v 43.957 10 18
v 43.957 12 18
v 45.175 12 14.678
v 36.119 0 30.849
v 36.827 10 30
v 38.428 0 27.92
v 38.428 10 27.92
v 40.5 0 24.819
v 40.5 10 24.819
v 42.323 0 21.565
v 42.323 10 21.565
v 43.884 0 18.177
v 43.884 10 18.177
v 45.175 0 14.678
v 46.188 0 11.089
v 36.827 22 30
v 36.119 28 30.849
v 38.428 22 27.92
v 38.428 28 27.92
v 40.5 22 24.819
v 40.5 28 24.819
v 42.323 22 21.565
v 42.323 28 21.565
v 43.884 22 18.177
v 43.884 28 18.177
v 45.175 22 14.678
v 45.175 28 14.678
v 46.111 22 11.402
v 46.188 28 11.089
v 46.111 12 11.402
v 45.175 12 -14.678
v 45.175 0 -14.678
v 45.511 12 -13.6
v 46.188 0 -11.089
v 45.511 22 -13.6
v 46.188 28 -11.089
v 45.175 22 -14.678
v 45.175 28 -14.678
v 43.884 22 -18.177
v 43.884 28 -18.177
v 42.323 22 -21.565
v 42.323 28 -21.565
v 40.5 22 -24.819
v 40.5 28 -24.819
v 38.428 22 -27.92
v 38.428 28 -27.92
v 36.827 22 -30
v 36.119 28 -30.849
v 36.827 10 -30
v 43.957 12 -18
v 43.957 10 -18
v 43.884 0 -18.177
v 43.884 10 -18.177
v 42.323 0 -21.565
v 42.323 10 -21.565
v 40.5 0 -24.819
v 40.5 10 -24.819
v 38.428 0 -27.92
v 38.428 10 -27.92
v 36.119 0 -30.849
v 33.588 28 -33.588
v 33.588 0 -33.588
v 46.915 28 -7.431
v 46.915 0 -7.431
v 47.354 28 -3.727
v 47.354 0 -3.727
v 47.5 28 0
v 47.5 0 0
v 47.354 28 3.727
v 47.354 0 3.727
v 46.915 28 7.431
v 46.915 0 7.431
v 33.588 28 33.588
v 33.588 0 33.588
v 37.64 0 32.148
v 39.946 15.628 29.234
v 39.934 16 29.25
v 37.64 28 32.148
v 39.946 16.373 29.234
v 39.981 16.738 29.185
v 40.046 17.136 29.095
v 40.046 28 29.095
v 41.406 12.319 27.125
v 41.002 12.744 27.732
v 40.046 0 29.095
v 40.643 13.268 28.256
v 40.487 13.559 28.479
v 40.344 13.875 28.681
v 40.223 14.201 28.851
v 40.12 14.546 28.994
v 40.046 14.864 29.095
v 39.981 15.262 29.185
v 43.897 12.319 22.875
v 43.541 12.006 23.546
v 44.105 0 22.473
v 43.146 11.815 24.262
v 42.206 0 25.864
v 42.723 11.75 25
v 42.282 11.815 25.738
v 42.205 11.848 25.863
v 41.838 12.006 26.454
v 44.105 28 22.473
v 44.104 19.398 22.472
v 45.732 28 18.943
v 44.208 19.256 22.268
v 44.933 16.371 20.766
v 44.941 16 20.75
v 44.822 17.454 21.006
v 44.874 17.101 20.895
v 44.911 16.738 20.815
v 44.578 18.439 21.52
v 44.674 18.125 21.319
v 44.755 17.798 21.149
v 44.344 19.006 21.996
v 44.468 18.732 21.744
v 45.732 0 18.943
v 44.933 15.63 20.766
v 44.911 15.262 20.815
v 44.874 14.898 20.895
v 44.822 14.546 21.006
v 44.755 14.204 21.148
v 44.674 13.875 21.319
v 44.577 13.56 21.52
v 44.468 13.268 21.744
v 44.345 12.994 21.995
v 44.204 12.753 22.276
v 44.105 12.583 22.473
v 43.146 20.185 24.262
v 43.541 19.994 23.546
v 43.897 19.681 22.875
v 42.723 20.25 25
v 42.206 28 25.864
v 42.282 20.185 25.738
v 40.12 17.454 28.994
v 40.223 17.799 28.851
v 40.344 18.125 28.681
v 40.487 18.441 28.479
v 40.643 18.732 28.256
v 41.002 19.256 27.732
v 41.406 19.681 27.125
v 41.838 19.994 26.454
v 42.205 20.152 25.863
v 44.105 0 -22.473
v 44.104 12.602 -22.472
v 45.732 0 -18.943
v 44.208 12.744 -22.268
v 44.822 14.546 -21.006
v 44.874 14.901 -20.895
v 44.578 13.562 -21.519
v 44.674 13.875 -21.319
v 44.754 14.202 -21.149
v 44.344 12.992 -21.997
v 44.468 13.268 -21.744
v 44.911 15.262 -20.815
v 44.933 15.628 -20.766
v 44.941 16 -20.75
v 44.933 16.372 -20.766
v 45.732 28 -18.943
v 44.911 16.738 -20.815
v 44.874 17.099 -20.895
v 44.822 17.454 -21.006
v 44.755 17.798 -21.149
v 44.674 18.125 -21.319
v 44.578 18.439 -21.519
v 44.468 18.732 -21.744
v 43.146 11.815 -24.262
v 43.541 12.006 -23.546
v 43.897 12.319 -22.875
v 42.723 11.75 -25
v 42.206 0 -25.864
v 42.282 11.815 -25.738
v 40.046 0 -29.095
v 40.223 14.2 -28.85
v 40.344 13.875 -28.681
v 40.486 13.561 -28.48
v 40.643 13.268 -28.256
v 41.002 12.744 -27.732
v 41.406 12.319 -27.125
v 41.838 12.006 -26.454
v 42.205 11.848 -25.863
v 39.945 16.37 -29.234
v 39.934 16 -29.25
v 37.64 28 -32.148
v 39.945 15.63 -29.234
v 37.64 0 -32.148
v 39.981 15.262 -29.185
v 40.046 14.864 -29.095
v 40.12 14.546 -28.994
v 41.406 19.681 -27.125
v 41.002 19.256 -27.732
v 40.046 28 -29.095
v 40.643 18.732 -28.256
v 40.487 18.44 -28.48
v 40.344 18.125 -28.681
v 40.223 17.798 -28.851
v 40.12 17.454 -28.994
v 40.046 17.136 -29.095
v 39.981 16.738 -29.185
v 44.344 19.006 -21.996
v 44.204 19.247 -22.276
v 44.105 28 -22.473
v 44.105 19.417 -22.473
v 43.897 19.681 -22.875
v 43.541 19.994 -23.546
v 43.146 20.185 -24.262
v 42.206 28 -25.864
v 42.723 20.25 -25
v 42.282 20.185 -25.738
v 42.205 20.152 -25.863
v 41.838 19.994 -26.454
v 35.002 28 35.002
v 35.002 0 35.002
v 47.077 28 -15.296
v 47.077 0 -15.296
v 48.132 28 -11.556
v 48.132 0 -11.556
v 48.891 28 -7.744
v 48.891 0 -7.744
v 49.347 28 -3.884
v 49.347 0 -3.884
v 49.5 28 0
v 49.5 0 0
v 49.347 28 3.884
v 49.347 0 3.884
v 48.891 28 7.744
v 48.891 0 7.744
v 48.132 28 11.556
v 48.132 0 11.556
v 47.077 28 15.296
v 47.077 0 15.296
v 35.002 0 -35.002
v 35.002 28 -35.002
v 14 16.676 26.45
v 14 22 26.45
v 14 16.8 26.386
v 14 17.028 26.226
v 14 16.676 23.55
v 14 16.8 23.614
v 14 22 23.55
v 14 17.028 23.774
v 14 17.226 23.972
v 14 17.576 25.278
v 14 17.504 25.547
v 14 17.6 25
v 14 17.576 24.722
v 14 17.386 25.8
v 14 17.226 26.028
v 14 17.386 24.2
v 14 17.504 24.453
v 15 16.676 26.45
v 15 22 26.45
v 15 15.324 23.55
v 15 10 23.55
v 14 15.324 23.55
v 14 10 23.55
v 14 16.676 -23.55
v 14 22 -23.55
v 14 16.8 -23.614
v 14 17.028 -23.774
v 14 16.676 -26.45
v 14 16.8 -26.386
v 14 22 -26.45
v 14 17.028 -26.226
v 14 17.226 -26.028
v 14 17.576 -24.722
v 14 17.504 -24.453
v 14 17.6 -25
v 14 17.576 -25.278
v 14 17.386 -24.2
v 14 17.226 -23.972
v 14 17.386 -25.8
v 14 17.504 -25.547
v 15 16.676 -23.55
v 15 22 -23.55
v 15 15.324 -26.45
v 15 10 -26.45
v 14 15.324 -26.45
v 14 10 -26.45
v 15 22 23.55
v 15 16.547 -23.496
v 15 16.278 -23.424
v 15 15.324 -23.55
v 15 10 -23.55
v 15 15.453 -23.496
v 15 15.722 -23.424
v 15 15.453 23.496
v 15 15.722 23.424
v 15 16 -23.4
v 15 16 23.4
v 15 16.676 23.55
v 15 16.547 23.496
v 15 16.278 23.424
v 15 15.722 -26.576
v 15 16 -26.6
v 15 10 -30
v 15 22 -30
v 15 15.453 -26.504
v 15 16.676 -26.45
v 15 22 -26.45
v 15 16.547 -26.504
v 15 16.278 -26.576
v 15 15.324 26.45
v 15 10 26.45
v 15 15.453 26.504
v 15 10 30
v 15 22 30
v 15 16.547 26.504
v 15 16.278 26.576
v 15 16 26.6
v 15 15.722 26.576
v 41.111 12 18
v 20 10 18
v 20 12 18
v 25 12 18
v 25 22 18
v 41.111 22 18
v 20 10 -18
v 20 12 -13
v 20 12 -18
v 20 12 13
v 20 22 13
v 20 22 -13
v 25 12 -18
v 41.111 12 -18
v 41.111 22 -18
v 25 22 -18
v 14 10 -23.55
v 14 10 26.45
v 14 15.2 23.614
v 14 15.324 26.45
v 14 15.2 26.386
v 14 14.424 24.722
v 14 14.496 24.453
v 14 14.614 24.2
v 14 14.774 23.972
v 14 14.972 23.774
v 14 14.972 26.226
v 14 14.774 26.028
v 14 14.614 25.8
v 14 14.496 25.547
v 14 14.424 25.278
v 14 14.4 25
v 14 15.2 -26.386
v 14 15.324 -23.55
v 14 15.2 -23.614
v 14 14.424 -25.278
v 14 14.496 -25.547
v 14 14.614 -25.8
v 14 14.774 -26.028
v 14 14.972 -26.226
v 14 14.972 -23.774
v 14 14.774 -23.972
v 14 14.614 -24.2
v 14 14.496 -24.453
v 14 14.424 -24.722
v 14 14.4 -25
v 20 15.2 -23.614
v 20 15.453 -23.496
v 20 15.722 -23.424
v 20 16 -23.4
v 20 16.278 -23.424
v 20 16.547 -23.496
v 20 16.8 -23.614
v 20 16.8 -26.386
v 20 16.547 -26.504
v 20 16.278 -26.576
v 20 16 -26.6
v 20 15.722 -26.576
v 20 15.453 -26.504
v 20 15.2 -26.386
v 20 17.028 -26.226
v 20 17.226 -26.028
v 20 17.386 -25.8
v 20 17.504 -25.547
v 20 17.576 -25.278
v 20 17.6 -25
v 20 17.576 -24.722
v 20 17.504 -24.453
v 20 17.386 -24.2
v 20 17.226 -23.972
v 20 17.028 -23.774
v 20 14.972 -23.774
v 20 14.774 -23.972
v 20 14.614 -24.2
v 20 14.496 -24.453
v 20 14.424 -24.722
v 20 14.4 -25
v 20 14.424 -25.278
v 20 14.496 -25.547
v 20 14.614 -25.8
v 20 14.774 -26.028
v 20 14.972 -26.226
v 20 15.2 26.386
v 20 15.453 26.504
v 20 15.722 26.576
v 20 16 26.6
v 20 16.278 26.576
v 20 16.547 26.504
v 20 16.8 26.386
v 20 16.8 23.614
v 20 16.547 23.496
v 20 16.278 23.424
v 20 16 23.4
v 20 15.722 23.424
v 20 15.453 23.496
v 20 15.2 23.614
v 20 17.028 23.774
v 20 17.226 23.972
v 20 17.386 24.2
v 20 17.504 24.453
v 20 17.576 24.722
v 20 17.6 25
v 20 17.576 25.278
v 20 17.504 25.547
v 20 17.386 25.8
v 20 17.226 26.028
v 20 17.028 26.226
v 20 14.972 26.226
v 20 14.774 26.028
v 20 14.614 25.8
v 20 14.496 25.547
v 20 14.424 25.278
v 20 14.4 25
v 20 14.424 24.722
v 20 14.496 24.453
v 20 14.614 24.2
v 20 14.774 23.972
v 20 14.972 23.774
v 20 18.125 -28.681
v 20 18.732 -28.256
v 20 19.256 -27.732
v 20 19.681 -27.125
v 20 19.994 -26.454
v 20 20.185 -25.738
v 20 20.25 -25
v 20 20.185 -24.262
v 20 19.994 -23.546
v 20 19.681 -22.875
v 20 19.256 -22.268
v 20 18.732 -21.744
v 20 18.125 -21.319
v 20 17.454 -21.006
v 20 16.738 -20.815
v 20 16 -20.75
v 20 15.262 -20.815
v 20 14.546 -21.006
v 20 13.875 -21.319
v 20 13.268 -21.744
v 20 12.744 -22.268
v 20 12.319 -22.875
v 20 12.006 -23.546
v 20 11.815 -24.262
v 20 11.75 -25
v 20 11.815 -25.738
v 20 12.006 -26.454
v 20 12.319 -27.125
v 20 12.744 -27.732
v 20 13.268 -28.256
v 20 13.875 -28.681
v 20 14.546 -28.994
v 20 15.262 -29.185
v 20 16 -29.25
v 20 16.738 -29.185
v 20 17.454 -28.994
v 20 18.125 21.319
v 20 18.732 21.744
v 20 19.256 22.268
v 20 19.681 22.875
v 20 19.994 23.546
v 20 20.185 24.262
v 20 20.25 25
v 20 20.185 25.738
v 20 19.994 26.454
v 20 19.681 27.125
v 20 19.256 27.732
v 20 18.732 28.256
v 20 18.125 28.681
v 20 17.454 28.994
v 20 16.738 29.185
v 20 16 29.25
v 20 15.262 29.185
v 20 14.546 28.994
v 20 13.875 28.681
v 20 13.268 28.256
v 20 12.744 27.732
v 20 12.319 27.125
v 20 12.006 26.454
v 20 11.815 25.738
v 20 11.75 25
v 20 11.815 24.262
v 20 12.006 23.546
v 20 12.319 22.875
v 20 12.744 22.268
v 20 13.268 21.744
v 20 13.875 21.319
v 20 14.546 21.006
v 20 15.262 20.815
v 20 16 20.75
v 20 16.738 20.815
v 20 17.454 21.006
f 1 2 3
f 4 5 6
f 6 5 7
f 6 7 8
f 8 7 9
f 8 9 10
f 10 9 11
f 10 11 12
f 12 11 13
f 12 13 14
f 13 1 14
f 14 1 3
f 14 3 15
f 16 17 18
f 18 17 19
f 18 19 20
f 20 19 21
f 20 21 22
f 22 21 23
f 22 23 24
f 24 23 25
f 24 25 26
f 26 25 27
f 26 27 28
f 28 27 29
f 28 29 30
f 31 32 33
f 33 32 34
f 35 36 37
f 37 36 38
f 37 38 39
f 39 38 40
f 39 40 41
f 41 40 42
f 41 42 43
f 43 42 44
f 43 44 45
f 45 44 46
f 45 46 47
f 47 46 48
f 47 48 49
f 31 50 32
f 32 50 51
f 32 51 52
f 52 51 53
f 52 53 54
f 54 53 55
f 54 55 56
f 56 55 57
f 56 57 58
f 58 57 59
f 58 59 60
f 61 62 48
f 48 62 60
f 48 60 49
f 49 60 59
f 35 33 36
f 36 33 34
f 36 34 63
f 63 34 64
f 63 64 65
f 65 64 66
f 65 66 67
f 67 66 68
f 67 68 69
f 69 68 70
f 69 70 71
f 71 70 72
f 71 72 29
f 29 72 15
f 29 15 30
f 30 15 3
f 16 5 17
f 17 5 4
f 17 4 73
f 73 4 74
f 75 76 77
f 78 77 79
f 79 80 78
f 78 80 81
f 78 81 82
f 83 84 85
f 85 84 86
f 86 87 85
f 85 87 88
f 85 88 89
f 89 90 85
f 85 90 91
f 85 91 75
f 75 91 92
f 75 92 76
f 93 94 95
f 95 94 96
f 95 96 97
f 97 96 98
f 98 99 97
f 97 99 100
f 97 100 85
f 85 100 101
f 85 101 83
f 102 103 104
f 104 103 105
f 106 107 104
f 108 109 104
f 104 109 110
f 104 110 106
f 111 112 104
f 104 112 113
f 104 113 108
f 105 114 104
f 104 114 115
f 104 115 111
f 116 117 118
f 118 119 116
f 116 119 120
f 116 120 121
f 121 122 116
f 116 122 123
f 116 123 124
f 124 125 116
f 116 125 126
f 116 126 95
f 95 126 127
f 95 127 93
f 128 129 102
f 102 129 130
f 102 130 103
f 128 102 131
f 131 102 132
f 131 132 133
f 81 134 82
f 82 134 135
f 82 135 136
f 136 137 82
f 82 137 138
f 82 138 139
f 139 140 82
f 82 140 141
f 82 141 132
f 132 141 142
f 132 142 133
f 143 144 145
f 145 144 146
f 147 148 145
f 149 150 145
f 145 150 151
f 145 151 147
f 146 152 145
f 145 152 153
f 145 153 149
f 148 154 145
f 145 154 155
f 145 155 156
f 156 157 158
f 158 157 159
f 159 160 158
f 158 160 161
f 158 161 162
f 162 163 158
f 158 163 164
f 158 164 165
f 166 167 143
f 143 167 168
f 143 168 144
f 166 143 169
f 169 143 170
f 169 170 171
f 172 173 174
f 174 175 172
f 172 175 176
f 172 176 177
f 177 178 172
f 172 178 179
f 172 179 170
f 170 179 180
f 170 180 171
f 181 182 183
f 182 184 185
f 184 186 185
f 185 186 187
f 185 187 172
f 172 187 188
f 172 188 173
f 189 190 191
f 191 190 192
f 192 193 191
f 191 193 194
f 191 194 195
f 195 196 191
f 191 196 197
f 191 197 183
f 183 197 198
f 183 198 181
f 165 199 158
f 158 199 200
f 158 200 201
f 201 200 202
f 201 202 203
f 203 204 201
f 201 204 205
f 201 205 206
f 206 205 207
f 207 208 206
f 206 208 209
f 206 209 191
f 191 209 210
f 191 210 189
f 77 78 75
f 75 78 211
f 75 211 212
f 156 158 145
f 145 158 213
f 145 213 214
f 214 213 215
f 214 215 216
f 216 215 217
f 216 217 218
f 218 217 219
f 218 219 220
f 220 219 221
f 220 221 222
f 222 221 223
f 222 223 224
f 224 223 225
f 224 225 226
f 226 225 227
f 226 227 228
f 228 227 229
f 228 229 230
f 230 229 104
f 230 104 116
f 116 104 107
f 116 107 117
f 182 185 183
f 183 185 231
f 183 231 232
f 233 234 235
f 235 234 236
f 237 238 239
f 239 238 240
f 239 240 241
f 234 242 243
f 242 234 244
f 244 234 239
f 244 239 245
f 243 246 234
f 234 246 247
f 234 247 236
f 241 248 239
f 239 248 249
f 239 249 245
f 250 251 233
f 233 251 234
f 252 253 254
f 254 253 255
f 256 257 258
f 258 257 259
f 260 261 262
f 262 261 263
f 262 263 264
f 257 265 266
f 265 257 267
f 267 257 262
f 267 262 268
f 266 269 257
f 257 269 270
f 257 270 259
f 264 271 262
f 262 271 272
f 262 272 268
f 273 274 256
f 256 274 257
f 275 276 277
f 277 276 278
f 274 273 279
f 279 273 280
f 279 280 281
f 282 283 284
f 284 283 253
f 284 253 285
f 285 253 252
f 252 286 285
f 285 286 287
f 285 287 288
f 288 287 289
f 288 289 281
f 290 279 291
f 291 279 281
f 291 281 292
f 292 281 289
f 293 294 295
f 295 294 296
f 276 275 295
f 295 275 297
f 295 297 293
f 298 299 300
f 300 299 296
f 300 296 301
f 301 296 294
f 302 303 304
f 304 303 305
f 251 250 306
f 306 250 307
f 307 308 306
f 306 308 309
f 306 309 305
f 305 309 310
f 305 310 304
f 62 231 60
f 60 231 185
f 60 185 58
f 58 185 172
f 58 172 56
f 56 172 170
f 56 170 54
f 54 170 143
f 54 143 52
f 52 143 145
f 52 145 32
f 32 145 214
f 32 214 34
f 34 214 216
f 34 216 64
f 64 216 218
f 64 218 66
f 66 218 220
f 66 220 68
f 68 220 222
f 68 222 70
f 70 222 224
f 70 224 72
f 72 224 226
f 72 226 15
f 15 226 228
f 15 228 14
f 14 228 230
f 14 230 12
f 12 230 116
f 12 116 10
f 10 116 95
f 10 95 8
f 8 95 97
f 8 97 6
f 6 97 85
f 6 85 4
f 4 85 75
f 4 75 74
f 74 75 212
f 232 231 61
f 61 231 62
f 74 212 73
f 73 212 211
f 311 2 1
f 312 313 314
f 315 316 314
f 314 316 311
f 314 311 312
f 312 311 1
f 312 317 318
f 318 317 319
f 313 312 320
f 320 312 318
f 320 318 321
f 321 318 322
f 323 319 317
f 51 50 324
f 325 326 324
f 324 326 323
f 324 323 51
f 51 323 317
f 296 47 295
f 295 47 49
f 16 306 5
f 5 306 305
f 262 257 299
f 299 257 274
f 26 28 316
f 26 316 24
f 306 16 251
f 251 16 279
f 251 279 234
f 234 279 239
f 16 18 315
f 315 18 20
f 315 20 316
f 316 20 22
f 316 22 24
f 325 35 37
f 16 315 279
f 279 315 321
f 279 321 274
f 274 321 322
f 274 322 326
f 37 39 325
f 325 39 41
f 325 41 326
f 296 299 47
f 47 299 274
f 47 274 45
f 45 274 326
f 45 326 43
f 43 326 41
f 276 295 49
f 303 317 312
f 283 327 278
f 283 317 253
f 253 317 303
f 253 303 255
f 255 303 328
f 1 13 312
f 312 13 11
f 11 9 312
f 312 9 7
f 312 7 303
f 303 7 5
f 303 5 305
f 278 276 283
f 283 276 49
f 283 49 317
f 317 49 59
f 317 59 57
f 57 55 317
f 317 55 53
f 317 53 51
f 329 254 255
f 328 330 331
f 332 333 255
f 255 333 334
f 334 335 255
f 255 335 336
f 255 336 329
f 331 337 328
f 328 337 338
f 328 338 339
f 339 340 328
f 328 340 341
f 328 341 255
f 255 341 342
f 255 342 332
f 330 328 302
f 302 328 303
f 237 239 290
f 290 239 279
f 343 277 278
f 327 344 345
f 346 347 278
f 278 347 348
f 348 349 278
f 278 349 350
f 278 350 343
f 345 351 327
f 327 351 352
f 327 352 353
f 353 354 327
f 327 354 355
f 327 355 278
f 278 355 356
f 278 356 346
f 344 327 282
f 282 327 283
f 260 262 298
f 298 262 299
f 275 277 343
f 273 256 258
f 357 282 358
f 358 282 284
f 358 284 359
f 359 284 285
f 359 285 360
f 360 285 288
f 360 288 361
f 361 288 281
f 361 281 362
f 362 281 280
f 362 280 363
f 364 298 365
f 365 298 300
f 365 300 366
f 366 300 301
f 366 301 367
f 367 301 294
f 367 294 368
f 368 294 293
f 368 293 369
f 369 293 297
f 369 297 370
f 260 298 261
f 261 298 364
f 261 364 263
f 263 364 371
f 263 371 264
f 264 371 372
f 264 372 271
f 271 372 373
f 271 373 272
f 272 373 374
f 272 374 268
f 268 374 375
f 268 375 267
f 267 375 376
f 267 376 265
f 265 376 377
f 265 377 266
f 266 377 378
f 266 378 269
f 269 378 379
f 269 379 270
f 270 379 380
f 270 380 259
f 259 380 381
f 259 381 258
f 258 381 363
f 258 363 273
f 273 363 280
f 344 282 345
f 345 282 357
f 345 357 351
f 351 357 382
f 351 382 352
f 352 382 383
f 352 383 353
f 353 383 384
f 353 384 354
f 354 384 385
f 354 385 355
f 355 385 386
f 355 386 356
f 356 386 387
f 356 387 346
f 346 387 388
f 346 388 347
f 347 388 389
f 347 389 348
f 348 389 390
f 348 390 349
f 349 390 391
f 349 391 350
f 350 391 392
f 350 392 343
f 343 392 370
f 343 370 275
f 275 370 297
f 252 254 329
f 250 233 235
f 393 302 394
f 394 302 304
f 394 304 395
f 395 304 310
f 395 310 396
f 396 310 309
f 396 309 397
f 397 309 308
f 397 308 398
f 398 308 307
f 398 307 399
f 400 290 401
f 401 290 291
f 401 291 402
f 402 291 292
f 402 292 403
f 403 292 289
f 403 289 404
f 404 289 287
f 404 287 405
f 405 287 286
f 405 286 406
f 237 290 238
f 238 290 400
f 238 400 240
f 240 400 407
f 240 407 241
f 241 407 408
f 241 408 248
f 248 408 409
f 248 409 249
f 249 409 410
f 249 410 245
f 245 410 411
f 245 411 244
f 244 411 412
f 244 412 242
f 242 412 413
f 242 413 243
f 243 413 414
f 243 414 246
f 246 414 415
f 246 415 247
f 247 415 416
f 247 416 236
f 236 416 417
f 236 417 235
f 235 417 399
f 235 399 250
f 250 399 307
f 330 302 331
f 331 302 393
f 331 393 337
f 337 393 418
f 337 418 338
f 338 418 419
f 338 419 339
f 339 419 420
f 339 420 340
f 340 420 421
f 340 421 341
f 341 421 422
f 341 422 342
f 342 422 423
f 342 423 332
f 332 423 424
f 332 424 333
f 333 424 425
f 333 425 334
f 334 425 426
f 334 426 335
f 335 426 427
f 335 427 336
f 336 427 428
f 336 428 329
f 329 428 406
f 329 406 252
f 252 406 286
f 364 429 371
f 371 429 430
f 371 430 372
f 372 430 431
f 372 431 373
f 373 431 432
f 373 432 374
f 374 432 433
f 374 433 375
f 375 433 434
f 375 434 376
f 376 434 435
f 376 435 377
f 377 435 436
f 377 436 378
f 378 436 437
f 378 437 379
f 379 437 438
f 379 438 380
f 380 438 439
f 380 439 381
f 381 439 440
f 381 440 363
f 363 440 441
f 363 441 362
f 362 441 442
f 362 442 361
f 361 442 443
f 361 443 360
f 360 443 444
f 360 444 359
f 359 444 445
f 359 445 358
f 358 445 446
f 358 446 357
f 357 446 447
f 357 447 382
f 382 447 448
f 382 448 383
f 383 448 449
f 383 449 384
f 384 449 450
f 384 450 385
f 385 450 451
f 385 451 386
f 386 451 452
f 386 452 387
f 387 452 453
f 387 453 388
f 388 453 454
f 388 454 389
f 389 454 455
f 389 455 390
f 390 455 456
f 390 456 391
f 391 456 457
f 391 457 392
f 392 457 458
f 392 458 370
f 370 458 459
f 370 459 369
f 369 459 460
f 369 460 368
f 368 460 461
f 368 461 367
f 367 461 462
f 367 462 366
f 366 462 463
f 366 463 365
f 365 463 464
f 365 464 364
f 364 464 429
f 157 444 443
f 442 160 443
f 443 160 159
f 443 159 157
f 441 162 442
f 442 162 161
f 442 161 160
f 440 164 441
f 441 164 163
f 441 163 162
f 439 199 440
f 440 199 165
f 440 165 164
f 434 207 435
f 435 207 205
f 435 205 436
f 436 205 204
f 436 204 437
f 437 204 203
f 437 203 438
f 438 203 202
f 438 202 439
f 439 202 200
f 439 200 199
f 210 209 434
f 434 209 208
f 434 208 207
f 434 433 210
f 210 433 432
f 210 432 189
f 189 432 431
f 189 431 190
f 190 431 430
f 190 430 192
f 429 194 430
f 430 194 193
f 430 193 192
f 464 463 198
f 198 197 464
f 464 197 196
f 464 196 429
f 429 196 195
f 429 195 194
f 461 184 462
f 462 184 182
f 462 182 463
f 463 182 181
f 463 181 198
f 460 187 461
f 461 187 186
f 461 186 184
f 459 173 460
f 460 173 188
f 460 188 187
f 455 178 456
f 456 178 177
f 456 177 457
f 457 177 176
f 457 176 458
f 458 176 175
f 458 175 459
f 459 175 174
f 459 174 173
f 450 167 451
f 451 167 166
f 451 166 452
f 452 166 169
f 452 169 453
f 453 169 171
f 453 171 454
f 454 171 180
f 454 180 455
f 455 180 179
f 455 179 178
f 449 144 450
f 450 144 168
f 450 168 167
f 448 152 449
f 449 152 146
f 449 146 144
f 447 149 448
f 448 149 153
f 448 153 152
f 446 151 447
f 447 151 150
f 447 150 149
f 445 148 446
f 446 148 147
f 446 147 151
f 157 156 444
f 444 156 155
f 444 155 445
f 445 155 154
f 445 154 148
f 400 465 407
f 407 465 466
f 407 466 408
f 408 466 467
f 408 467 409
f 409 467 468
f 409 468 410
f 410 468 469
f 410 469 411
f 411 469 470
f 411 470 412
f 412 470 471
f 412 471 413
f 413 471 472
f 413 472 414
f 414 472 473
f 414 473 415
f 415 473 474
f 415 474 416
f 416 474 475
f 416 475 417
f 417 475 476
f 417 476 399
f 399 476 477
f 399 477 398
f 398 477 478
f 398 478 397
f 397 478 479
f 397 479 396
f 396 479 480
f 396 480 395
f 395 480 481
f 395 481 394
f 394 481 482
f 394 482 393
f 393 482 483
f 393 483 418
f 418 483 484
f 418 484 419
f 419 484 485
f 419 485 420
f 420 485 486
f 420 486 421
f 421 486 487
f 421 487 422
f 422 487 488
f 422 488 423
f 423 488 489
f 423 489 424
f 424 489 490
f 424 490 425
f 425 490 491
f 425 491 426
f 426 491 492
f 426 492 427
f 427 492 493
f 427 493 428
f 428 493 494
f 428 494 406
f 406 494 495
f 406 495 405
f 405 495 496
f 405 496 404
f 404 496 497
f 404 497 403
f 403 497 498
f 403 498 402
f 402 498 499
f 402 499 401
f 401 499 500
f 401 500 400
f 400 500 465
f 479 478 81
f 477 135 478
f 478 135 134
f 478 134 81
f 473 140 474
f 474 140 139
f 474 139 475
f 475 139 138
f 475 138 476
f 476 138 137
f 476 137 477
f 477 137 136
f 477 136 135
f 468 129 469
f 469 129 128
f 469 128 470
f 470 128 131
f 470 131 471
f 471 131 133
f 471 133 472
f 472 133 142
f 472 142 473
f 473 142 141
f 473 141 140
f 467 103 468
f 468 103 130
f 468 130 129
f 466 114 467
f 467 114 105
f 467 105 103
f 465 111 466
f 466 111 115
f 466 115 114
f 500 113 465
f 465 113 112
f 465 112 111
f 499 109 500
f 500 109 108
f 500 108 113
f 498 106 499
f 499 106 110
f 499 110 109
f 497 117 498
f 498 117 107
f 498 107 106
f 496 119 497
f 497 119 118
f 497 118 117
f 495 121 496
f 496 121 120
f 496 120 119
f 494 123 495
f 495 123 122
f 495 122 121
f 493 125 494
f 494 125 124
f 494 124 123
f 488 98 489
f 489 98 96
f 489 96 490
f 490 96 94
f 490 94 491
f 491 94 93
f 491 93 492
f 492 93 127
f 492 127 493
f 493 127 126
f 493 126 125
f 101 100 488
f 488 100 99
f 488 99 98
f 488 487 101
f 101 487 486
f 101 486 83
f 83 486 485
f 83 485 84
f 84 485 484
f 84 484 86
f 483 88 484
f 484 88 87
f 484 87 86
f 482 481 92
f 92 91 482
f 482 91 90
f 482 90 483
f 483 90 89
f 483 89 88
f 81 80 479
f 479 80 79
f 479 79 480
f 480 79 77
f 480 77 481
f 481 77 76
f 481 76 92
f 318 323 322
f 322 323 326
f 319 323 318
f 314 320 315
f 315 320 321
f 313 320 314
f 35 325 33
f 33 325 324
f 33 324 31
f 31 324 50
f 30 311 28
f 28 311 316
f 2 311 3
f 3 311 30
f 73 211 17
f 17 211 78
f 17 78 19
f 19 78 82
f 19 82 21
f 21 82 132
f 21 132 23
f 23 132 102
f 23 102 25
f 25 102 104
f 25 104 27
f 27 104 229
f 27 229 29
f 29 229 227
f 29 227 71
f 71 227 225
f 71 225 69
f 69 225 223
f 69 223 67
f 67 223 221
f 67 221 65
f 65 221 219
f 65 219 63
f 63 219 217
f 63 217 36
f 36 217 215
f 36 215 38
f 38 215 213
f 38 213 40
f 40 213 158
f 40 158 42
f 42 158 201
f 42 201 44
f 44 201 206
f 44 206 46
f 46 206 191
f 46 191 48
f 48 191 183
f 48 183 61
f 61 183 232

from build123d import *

# Parameters (mm, degrees)
SKETCH1_W           = 2
SKETCH1_H           = 40
MAIN_ANGLE          = 90
SUPPORT_DEPTH       = 12
SKETCH6_W           = 1
SKETCH6_H           = 2.9
FIX_2_DEPTH         = 12
SKETCH9_R           = 1.6
SKETCH9_W           = 60
SKETCH9_H           = 8
HOLES_DEPTH         = 7
SKETCH10_R          = 4.25
BIGHOLES_DEPTH      = 30.5
REINFORCEMENT_DEPTH = 10
SKETCH12_W          = 70.003571338
SKETCH12_H          = 12
SENSORWINDOW_DEPTH  = 35.5000001


with BuildPart() as part:
    # Sketch1 → Main (revolve, symmetric)
    with BuildSketch(Plane.XY) as main_sk:
        with Locations((48.5, 20)):
            Rectangle(SKETCH1_W, SKETCH1_H)
    revolve(axis=Axis((0, -0.284703924, 0), (0, 1, 0)), revolution_arc=MAIN_ANGLE / 2)
    revolve(main_sk.sketch, axis=Axis((0, -0.284703924, 0), (0, -1, 0)), revolution_arc=MAIN_ANGLE / 2)

    # Sketch2 → Support (add)
    with BuildSketch(Plane(origin=(0, 10, 0), x_dir=(-1, 0, 0), z_dir=(0, -1, 0))):
        with BuildLine():
            Line((-43.957365708, -18), (-20, -18))
            Line((-20, -18), (-20, 18))
            Line((-20, 18), (-43.957365708, 18))
            ThreePointArc((-43.957365708, 18), (-40.835530357, 24.263335724), (-36.827299657, 30))
            Line((-36.827299657, 30), (-15, 30))
            Line((-15, 30), (-15, -30))
            Line((-15, -30), (-36.827299657, -30))
            ThreePointArc((-36.827299657, -30), (-40.835530357, -24.263335724), (-43.957365708, -18))
        make_face()
    extrude(amount=-SUPPORT_DEPTH)

    # Sketch6 → Fix 2 (add)
    with BuildSketch(Plane(origin=(0, 10, 0), x_dir=(1, 0, 0), z_dir=(0, 1, 0))):
        with Locations((14.5, -25)):
            Rectangle(SKETCH6_W, SKETCH6_H)
        with Locations((14.5, 25)):
            Rectangle(SKETCH6_W, SKETCH6_H)
    extrude(amount=FIX_2_DEPTH)

    # Sketch9 → Holes (cut, through all)
    with BuildSketch(Plane(origin=(20, 0, 0), x_dir=(0, 0, -1), z_dir=(1, 0, 0))):
        with Locations((25, 16)):
            Circle(SKETCH9_R)
        with Locations((-25, 16)):
            Circle(SKETCH9_R)
        with Locations((0, 38)):
            Rectangle(SKETCH9_W, SKETCH9_H)
    extrude(amount=-HOLES_DEPTH, mode=Mode.SUBTRACT)

    # Sketch10 → BigHoles (cut, through all)
    with BuildSketch(Plane(origin=(20, 0, 0), x_dir=(0, 0, -1), z_dir=(1, 0, 0))):
        with Locations((25, 16)):
            Circle(SKETCH10_R)
        with Locations((-25, 16)):
            Circle(SKETCH10_R)
    extrude(amount=BIGHOLES_DEPTH, mode=Mode.SUBTRACT)

    # Sketch11 → Reinforcement (add)
    with BuildSketch(Plane(origin=(0, 22, 0), x_dir=(1, 0, 0), z_dir=(0, 1, 0))):
        Polygon((20, 18), (25, 18), (20, 13), align=None)
        Polygon((20, -18), (20, -13), (25, -18), align=None)
        Polygon((41.111278447, 18), (46.111278447, 18), (46.111278447, 13), align=None)
        Polygon((41.111278447, -18), (46.111278447, -18), (46.111278447, -11.401754251), align=None)
    extrude(amount=-REINFORCEMENT_DEPTH)

    # Sketch12 → SensorWindow (cut, through all)
    with BuildSketch(Plane.ZY.offset(-15)):
        with Locations((0, 34)):
            Rectangle(SKETCH12_W, SKETCH12_H)
    extrude(amount=-SENSORWINDOW_DEPTH, mode=Mode.SUBTRACT)


solid = part.part
